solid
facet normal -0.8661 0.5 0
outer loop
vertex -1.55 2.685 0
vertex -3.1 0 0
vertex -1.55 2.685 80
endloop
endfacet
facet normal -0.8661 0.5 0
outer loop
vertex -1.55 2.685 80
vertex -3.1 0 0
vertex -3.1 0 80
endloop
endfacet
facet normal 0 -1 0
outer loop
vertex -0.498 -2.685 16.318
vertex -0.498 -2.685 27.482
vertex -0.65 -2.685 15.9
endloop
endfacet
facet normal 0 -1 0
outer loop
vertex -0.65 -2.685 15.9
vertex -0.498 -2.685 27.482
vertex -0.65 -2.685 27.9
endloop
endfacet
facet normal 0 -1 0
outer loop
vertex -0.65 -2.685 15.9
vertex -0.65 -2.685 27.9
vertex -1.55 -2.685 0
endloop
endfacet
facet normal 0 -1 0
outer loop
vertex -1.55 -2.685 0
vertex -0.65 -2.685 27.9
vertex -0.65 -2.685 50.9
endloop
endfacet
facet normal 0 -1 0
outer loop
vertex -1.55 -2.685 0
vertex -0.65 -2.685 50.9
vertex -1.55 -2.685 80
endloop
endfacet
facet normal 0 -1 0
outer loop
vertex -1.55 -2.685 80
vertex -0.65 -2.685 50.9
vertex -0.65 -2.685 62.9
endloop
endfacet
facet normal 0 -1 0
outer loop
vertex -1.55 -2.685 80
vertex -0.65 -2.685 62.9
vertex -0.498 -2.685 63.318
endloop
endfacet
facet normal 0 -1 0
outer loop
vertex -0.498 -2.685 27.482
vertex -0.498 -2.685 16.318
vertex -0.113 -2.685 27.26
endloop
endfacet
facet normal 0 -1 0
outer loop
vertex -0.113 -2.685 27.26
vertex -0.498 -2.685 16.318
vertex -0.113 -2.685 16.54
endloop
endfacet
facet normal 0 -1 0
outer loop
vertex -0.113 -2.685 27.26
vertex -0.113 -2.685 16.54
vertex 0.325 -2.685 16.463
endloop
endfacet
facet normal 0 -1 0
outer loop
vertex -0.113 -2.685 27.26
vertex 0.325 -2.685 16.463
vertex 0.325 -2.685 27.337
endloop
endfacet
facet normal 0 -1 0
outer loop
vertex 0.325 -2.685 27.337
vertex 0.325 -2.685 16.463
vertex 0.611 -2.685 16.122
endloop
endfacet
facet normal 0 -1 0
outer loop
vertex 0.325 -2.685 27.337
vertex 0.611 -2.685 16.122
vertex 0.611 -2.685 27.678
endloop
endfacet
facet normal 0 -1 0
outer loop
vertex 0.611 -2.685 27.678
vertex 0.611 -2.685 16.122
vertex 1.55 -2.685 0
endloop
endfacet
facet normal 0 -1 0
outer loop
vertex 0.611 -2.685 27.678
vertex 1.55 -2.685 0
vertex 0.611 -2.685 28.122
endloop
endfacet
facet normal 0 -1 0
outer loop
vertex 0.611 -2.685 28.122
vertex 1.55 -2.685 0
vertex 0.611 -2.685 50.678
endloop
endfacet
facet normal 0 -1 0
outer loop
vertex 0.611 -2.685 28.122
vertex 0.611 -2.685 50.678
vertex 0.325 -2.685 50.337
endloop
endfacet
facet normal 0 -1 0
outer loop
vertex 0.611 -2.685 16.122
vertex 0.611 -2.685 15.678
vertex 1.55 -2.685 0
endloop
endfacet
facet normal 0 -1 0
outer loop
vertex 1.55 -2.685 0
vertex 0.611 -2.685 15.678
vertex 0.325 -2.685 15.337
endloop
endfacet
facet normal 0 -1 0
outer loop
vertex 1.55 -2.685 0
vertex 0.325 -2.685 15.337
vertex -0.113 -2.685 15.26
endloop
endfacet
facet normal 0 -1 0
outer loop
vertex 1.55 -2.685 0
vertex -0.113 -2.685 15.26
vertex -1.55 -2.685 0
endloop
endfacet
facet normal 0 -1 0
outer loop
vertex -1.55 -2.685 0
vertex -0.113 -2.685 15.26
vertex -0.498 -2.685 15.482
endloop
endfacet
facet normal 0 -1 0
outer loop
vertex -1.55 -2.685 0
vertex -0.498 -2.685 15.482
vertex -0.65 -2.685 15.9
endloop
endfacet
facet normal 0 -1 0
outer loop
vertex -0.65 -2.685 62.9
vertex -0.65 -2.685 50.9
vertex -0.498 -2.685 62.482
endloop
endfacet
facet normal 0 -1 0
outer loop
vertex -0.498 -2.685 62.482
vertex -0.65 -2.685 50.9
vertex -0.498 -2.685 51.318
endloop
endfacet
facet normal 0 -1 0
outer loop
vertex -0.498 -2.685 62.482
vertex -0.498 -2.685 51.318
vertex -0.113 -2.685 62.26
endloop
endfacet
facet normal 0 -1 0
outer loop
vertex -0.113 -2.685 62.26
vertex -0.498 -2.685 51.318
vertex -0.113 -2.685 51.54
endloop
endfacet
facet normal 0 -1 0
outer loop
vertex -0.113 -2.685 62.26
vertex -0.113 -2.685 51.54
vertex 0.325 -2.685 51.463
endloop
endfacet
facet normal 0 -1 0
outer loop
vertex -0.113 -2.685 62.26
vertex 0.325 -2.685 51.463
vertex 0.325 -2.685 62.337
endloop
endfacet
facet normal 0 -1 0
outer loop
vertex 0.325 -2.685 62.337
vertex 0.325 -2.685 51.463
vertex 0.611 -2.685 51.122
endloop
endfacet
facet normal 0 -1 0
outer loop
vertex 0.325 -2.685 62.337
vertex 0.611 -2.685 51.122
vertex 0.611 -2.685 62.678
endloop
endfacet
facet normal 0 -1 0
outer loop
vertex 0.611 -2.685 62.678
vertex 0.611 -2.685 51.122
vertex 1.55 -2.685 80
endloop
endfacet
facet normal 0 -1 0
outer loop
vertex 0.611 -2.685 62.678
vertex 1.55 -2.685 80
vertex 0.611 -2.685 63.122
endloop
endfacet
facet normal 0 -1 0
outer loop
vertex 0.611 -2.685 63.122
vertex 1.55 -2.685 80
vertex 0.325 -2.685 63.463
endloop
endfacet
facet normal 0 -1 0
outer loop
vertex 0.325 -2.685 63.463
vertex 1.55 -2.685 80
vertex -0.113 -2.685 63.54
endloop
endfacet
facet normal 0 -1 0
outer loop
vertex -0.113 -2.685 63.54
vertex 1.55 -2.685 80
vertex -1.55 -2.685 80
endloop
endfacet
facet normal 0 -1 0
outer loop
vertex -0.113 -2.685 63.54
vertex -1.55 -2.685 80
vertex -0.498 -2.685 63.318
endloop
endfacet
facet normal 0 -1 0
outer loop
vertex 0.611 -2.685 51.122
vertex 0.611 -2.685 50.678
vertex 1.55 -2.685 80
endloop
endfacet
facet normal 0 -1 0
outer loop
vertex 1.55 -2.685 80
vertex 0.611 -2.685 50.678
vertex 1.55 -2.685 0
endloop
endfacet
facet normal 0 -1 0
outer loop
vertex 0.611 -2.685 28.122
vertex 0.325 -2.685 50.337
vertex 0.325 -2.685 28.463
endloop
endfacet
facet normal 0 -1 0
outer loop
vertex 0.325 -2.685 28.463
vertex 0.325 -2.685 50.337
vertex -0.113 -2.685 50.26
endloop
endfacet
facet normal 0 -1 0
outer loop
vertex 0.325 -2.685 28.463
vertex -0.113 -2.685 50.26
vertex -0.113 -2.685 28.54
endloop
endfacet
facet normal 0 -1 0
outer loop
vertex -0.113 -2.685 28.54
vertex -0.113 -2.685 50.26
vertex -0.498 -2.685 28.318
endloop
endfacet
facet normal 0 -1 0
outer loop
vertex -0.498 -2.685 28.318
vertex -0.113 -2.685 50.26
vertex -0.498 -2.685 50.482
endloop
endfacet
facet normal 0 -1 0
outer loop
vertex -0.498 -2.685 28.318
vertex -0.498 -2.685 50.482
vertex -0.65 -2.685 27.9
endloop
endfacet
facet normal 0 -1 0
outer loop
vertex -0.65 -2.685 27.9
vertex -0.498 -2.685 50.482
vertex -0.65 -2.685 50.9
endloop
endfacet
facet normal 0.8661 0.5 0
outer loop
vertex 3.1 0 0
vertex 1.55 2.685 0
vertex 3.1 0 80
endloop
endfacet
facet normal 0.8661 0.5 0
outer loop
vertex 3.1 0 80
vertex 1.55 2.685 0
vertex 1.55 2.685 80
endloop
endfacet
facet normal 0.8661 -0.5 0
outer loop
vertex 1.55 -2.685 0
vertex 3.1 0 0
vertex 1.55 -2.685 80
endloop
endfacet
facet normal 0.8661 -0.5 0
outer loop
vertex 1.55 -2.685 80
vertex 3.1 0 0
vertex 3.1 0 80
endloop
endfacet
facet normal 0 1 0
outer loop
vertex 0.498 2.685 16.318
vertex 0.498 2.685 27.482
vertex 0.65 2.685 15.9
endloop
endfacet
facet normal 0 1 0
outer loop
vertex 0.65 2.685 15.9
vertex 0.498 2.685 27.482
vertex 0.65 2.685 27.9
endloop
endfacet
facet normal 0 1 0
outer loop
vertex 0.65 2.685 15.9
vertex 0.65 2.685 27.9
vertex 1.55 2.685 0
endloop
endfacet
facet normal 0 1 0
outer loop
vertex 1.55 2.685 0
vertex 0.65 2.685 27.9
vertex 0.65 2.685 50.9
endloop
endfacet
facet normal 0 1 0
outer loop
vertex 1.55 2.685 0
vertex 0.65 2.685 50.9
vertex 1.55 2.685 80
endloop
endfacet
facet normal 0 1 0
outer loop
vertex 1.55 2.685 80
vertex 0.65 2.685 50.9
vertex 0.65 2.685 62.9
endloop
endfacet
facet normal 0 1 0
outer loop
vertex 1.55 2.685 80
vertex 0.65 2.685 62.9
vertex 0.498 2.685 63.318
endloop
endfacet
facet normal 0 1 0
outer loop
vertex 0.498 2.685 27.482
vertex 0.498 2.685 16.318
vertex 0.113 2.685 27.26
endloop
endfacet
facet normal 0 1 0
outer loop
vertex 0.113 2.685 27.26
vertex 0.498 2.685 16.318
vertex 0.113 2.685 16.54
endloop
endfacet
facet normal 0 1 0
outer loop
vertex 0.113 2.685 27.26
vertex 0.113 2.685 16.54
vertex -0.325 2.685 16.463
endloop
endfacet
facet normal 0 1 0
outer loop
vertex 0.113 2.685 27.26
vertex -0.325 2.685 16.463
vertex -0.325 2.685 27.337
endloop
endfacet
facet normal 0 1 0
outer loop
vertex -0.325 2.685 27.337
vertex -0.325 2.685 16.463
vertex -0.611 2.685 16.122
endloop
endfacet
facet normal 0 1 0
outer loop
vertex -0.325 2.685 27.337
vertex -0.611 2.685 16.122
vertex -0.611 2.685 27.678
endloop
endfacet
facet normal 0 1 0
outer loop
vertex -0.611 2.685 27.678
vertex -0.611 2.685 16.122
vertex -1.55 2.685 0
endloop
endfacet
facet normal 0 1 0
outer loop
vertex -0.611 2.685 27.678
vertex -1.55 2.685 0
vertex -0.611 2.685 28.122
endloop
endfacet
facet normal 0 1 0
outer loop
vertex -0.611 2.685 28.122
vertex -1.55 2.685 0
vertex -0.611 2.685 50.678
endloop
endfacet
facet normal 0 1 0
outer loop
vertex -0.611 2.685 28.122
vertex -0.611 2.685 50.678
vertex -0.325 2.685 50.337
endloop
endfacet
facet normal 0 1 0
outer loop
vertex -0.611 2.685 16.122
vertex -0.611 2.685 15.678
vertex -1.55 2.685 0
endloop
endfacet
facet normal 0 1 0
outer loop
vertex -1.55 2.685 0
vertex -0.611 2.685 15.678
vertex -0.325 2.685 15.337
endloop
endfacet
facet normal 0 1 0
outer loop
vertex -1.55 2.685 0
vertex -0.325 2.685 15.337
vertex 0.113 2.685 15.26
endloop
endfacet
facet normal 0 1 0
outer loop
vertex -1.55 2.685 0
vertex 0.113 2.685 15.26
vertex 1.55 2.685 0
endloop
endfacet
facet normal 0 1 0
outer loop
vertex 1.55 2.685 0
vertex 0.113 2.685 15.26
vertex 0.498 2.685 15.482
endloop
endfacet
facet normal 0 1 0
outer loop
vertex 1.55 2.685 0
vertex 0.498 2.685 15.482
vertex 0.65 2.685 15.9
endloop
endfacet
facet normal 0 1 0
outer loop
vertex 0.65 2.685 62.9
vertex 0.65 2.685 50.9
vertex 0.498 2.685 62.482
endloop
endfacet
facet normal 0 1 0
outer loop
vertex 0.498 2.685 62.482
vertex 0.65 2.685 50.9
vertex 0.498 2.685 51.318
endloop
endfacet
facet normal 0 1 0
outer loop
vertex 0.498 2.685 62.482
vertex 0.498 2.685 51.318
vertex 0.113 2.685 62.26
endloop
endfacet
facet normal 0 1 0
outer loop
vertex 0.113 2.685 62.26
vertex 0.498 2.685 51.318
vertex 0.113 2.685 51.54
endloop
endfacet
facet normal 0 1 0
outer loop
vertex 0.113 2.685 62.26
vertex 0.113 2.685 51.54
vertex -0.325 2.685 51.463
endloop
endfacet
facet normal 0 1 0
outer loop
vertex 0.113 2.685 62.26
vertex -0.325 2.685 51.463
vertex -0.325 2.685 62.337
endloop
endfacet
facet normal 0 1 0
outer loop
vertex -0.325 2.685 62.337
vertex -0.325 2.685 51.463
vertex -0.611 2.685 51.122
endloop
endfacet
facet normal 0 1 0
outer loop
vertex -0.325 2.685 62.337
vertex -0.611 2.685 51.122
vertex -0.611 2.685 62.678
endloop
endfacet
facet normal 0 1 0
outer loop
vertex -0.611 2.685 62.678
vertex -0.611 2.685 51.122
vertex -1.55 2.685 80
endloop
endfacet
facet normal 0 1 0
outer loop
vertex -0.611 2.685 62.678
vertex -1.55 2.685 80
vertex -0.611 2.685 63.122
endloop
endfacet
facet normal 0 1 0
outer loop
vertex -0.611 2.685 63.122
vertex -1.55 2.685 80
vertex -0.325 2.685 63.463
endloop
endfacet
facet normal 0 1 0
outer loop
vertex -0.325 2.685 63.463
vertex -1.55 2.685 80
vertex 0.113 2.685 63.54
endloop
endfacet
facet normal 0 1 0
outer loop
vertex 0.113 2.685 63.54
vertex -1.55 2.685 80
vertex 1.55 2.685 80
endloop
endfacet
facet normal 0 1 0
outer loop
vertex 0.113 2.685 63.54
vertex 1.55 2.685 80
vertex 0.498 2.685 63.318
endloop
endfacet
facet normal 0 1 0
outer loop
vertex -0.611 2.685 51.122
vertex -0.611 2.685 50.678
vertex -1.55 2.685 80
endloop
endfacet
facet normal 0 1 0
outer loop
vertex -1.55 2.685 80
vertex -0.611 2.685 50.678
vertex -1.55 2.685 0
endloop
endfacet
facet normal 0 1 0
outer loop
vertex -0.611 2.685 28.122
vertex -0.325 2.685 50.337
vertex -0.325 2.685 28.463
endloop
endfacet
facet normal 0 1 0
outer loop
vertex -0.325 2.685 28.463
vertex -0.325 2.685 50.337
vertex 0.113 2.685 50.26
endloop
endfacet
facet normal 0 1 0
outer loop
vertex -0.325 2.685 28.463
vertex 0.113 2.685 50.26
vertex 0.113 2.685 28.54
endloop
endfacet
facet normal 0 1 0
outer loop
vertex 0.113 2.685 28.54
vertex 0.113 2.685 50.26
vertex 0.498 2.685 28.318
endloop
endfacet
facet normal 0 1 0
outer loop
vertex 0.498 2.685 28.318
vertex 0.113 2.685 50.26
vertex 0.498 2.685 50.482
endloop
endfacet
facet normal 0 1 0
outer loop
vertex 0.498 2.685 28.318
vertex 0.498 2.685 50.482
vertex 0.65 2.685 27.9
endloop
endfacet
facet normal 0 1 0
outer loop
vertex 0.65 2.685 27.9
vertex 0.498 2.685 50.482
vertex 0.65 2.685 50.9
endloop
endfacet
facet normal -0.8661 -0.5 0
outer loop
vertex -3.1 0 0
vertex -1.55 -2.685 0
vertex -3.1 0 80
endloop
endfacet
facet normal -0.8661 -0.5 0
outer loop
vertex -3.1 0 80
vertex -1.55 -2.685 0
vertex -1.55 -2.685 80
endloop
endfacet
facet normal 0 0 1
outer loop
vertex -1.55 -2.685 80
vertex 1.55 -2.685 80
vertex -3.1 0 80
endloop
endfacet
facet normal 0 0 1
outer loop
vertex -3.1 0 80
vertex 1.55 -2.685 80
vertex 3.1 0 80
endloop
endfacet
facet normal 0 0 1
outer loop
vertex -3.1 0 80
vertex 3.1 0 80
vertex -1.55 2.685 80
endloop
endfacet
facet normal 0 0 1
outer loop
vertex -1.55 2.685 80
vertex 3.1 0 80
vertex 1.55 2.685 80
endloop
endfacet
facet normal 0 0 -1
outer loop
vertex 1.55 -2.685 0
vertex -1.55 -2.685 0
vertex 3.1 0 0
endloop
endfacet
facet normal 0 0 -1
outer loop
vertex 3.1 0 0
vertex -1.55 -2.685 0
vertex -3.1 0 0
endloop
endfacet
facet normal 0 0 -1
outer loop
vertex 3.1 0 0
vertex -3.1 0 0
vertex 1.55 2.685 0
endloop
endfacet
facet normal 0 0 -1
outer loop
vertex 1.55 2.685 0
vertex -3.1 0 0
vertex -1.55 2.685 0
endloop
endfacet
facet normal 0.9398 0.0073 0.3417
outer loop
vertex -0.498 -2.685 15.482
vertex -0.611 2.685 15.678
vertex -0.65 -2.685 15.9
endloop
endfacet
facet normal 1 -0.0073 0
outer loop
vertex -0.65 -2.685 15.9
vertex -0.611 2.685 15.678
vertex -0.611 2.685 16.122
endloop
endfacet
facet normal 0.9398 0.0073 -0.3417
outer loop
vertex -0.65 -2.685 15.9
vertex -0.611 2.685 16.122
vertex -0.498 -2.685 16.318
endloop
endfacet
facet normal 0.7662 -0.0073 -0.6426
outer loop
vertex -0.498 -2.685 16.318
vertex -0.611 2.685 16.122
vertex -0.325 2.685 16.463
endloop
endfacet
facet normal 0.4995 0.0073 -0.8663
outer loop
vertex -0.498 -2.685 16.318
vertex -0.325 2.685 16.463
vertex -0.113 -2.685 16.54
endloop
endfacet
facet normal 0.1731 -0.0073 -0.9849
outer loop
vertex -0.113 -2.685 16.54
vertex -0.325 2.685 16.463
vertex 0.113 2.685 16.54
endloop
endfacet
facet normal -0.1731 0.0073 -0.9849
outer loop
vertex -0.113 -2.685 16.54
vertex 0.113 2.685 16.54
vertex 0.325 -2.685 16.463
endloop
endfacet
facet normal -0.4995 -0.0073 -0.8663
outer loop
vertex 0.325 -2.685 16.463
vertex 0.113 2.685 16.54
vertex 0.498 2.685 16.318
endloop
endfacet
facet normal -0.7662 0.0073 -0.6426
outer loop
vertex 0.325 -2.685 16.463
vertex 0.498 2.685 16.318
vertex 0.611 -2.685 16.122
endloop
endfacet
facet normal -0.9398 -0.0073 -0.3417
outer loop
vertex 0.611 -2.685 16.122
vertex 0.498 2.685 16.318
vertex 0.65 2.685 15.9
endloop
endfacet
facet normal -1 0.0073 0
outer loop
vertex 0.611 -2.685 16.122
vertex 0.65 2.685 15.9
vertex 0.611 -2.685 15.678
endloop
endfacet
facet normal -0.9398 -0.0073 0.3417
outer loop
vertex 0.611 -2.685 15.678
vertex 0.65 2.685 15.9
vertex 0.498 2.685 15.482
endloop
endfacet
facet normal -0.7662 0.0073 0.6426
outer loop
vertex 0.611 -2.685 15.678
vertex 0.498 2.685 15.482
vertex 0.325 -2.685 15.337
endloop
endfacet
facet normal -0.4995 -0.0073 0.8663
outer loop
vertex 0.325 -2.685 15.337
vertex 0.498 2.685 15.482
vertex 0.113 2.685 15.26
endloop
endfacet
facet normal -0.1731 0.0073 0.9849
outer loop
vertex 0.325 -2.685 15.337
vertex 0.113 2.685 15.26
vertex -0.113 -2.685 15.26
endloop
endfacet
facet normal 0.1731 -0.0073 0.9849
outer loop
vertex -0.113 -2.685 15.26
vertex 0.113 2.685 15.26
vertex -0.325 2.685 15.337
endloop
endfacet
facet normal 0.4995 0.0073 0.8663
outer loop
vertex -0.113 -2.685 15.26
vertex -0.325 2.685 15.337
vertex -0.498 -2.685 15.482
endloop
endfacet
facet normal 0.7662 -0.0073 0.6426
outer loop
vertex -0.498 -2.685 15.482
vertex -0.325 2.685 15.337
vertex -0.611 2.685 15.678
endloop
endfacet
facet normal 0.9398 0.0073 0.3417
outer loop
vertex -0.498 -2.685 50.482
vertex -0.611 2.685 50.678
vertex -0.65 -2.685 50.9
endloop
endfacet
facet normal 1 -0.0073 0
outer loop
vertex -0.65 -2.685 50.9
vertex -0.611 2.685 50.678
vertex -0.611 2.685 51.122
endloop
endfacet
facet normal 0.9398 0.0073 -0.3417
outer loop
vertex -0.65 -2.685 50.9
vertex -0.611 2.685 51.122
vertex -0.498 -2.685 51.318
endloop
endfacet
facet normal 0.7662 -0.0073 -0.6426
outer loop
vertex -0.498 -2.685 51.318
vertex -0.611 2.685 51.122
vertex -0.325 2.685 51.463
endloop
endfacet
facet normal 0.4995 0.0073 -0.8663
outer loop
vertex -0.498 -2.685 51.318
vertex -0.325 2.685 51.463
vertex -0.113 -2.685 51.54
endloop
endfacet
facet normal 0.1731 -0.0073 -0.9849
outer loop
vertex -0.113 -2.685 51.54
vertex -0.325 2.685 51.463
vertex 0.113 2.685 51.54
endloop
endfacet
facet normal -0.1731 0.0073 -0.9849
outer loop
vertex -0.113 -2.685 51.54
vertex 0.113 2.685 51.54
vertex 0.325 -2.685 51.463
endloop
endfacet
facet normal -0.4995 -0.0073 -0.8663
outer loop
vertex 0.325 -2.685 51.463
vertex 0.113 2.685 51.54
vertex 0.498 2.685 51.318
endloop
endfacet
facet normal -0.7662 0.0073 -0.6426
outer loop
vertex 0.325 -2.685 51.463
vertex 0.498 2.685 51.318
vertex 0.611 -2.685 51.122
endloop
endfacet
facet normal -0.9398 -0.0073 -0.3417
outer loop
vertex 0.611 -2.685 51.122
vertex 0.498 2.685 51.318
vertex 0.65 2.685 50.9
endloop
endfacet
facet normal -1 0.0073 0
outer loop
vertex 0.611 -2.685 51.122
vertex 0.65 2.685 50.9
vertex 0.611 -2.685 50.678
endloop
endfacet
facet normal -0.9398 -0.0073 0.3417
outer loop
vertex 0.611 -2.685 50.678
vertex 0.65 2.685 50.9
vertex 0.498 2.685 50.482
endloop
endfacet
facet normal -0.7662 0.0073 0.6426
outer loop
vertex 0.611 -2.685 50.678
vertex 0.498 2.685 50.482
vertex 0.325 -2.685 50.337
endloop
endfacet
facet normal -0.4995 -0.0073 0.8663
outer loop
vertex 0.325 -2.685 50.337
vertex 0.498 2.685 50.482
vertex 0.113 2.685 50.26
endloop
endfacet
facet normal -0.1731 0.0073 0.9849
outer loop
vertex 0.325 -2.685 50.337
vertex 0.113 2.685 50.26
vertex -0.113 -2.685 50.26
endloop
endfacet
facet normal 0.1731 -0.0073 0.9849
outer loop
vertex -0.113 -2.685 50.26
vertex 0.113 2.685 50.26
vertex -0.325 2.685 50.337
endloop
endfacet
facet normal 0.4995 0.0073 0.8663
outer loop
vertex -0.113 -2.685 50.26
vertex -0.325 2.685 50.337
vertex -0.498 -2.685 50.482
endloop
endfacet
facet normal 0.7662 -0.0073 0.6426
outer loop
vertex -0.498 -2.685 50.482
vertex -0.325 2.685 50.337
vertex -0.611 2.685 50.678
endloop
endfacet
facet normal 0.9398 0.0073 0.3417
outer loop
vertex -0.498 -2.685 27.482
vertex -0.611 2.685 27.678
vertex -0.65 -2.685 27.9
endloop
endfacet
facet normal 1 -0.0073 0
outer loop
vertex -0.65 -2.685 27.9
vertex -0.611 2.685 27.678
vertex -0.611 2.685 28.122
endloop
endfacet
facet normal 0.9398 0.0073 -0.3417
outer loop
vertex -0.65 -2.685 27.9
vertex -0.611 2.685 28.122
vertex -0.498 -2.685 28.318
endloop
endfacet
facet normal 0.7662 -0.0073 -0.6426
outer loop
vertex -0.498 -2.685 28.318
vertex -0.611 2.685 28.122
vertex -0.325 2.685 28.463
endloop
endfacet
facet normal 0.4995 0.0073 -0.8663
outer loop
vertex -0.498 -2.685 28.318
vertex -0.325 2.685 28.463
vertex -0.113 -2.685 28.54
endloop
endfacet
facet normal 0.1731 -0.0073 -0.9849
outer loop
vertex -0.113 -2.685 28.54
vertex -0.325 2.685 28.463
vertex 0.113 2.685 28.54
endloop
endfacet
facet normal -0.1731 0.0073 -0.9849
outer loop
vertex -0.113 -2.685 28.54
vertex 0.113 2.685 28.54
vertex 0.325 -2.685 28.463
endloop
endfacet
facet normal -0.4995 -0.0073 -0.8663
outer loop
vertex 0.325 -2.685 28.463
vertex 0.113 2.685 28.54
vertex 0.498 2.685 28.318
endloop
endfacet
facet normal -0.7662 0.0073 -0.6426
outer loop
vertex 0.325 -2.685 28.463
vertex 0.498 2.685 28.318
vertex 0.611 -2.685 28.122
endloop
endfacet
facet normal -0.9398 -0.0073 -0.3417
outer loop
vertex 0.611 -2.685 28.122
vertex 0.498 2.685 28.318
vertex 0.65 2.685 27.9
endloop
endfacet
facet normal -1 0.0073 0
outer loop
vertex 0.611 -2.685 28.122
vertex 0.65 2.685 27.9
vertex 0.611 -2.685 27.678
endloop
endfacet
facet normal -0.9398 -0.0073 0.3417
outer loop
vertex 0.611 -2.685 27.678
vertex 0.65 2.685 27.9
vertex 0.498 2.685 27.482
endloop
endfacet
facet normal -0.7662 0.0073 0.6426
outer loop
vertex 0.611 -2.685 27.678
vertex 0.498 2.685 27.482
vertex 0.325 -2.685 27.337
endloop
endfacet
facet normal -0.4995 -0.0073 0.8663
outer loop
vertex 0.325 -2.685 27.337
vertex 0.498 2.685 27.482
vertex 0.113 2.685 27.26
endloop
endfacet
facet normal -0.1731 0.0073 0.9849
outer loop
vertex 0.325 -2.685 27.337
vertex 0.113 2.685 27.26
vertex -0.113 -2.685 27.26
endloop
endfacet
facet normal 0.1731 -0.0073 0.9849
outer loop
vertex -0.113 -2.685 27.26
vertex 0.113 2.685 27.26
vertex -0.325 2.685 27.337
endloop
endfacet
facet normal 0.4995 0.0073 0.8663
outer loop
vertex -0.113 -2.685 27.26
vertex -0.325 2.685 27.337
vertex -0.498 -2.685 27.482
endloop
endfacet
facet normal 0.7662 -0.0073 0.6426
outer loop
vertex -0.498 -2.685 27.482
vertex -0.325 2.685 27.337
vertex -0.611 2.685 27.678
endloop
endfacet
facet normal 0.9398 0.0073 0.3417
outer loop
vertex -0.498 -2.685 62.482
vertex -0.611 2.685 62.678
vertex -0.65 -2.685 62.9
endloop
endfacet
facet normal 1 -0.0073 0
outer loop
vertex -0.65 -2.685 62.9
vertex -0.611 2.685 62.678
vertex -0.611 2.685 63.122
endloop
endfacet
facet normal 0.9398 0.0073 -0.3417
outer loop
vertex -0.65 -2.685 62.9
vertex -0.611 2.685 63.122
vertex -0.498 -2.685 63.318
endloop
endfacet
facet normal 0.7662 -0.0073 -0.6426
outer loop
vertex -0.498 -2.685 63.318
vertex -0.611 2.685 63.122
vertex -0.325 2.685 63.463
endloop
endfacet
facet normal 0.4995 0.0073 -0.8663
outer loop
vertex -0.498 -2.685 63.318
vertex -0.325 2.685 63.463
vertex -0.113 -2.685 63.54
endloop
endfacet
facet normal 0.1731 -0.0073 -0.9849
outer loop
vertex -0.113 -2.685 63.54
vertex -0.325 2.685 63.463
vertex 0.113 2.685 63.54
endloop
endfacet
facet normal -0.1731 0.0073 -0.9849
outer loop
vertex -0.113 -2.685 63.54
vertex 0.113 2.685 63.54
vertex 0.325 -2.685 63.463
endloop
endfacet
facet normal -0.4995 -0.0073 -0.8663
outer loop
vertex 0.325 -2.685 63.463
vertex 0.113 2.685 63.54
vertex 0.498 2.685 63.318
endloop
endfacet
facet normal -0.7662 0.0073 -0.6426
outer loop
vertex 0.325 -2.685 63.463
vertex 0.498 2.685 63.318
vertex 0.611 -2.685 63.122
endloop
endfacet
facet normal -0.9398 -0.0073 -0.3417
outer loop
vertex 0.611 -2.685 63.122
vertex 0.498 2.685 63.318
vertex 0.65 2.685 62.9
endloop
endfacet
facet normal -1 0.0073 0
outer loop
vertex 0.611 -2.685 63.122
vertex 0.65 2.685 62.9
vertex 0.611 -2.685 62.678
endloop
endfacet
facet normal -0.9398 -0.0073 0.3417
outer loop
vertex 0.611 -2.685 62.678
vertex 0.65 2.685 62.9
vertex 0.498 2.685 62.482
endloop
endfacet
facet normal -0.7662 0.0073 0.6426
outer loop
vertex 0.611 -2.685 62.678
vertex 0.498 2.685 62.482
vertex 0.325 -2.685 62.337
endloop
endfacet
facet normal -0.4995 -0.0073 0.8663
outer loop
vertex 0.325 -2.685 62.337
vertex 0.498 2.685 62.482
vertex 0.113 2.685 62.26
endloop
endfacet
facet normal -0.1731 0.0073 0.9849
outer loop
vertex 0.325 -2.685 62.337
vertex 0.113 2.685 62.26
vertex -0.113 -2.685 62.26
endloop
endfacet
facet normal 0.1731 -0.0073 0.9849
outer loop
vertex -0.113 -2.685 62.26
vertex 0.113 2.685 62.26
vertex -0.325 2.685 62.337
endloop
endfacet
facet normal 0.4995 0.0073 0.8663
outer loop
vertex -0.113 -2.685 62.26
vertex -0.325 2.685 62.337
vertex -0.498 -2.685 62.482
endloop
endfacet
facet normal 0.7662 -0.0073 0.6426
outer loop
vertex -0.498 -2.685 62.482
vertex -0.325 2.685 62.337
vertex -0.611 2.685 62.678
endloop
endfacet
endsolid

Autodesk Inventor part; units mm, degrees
ref_plane "YZ Plane" through (0, 0, 0) normal (1, 0, 0) x (0, 1, 0)
ref_plane "XZ Plane" through (0, 0, 0) normal (0, 1, 0) x (-1, 0, 0)
ref_plane "XY Plane" through (0, 0, 0) normal (0, 0, 1) x (1, 0, 0)
sketch "Sketch4" plane through (0, 0, 0) normal (0, 0, 1) x (1, 0, 0)
  line L0 (0, 0) -> (3.1, 0) construction
  circle A0 centre (0, 0) radius 3.1 construction
  line L1 (0, 0) -> (1.55, 2.6847) construction
  line L2 (0, 0) -> (-1.55, 2.6847) construction
  line L3 (0, 0) -> (-3.1, 0) construction
  line L4 (0, 0) -> (-1.55, -2.6847) construction
  line L5 (0, 0) -> (1.55, -2.6847) construction
  line L6 (-1.55, 2.6847) -> (1.55, 2.6847)
  line L7 (1.55, 2.6847) -> (3.1, 0)
  line L8 (3.1, 0) -> (1.55, -2.6847)
  line L9 (1.55, -2.6847) -> (-1.55, -2.6847)
  line L10 (-1.55, -2.6847) -> (-3.1, 0)
  line L11 (-3.1, 0) -> (-1.55, 2.6847)
  dimension "d15" = 3.1
  dimension "d18" = 360
extrude "Extrusion5" add sketch "Sketch4" along normal blind 80
sketch "Sketch5" plane through (-1.55, 2.6847, 0) normal (0, 1, 0) x (1, 0, 0)
  line L0 (3.1, -80) -> (0, -80) construction
  line L1 (3.1, 0) -> (0, 0) construction
  line L2 (0, -80) -> (3.1, -80) projected
  line L3 (1.55, -80) -> (1.55, 0) construction
  circle A0 centre (1.55, -15.9) radius 0.65
  circle A1 centre (1.55, -27.9) radius 0.65
  circle A2 centre (1.55, -50.9) radius 0.65
  circle A3 centre (1.55, -62.9) radius 0.65
  dimension "d22" = 1.3
  dimension "d23" = 64.1
  dimension "d24" = 52.1
  dimension "d25" = 29.1
  dimension "d26" = 17.1
extrude "Extrusion6" cut sketch "Sketch5" against normal blind 6
properties part number "Eje1"
